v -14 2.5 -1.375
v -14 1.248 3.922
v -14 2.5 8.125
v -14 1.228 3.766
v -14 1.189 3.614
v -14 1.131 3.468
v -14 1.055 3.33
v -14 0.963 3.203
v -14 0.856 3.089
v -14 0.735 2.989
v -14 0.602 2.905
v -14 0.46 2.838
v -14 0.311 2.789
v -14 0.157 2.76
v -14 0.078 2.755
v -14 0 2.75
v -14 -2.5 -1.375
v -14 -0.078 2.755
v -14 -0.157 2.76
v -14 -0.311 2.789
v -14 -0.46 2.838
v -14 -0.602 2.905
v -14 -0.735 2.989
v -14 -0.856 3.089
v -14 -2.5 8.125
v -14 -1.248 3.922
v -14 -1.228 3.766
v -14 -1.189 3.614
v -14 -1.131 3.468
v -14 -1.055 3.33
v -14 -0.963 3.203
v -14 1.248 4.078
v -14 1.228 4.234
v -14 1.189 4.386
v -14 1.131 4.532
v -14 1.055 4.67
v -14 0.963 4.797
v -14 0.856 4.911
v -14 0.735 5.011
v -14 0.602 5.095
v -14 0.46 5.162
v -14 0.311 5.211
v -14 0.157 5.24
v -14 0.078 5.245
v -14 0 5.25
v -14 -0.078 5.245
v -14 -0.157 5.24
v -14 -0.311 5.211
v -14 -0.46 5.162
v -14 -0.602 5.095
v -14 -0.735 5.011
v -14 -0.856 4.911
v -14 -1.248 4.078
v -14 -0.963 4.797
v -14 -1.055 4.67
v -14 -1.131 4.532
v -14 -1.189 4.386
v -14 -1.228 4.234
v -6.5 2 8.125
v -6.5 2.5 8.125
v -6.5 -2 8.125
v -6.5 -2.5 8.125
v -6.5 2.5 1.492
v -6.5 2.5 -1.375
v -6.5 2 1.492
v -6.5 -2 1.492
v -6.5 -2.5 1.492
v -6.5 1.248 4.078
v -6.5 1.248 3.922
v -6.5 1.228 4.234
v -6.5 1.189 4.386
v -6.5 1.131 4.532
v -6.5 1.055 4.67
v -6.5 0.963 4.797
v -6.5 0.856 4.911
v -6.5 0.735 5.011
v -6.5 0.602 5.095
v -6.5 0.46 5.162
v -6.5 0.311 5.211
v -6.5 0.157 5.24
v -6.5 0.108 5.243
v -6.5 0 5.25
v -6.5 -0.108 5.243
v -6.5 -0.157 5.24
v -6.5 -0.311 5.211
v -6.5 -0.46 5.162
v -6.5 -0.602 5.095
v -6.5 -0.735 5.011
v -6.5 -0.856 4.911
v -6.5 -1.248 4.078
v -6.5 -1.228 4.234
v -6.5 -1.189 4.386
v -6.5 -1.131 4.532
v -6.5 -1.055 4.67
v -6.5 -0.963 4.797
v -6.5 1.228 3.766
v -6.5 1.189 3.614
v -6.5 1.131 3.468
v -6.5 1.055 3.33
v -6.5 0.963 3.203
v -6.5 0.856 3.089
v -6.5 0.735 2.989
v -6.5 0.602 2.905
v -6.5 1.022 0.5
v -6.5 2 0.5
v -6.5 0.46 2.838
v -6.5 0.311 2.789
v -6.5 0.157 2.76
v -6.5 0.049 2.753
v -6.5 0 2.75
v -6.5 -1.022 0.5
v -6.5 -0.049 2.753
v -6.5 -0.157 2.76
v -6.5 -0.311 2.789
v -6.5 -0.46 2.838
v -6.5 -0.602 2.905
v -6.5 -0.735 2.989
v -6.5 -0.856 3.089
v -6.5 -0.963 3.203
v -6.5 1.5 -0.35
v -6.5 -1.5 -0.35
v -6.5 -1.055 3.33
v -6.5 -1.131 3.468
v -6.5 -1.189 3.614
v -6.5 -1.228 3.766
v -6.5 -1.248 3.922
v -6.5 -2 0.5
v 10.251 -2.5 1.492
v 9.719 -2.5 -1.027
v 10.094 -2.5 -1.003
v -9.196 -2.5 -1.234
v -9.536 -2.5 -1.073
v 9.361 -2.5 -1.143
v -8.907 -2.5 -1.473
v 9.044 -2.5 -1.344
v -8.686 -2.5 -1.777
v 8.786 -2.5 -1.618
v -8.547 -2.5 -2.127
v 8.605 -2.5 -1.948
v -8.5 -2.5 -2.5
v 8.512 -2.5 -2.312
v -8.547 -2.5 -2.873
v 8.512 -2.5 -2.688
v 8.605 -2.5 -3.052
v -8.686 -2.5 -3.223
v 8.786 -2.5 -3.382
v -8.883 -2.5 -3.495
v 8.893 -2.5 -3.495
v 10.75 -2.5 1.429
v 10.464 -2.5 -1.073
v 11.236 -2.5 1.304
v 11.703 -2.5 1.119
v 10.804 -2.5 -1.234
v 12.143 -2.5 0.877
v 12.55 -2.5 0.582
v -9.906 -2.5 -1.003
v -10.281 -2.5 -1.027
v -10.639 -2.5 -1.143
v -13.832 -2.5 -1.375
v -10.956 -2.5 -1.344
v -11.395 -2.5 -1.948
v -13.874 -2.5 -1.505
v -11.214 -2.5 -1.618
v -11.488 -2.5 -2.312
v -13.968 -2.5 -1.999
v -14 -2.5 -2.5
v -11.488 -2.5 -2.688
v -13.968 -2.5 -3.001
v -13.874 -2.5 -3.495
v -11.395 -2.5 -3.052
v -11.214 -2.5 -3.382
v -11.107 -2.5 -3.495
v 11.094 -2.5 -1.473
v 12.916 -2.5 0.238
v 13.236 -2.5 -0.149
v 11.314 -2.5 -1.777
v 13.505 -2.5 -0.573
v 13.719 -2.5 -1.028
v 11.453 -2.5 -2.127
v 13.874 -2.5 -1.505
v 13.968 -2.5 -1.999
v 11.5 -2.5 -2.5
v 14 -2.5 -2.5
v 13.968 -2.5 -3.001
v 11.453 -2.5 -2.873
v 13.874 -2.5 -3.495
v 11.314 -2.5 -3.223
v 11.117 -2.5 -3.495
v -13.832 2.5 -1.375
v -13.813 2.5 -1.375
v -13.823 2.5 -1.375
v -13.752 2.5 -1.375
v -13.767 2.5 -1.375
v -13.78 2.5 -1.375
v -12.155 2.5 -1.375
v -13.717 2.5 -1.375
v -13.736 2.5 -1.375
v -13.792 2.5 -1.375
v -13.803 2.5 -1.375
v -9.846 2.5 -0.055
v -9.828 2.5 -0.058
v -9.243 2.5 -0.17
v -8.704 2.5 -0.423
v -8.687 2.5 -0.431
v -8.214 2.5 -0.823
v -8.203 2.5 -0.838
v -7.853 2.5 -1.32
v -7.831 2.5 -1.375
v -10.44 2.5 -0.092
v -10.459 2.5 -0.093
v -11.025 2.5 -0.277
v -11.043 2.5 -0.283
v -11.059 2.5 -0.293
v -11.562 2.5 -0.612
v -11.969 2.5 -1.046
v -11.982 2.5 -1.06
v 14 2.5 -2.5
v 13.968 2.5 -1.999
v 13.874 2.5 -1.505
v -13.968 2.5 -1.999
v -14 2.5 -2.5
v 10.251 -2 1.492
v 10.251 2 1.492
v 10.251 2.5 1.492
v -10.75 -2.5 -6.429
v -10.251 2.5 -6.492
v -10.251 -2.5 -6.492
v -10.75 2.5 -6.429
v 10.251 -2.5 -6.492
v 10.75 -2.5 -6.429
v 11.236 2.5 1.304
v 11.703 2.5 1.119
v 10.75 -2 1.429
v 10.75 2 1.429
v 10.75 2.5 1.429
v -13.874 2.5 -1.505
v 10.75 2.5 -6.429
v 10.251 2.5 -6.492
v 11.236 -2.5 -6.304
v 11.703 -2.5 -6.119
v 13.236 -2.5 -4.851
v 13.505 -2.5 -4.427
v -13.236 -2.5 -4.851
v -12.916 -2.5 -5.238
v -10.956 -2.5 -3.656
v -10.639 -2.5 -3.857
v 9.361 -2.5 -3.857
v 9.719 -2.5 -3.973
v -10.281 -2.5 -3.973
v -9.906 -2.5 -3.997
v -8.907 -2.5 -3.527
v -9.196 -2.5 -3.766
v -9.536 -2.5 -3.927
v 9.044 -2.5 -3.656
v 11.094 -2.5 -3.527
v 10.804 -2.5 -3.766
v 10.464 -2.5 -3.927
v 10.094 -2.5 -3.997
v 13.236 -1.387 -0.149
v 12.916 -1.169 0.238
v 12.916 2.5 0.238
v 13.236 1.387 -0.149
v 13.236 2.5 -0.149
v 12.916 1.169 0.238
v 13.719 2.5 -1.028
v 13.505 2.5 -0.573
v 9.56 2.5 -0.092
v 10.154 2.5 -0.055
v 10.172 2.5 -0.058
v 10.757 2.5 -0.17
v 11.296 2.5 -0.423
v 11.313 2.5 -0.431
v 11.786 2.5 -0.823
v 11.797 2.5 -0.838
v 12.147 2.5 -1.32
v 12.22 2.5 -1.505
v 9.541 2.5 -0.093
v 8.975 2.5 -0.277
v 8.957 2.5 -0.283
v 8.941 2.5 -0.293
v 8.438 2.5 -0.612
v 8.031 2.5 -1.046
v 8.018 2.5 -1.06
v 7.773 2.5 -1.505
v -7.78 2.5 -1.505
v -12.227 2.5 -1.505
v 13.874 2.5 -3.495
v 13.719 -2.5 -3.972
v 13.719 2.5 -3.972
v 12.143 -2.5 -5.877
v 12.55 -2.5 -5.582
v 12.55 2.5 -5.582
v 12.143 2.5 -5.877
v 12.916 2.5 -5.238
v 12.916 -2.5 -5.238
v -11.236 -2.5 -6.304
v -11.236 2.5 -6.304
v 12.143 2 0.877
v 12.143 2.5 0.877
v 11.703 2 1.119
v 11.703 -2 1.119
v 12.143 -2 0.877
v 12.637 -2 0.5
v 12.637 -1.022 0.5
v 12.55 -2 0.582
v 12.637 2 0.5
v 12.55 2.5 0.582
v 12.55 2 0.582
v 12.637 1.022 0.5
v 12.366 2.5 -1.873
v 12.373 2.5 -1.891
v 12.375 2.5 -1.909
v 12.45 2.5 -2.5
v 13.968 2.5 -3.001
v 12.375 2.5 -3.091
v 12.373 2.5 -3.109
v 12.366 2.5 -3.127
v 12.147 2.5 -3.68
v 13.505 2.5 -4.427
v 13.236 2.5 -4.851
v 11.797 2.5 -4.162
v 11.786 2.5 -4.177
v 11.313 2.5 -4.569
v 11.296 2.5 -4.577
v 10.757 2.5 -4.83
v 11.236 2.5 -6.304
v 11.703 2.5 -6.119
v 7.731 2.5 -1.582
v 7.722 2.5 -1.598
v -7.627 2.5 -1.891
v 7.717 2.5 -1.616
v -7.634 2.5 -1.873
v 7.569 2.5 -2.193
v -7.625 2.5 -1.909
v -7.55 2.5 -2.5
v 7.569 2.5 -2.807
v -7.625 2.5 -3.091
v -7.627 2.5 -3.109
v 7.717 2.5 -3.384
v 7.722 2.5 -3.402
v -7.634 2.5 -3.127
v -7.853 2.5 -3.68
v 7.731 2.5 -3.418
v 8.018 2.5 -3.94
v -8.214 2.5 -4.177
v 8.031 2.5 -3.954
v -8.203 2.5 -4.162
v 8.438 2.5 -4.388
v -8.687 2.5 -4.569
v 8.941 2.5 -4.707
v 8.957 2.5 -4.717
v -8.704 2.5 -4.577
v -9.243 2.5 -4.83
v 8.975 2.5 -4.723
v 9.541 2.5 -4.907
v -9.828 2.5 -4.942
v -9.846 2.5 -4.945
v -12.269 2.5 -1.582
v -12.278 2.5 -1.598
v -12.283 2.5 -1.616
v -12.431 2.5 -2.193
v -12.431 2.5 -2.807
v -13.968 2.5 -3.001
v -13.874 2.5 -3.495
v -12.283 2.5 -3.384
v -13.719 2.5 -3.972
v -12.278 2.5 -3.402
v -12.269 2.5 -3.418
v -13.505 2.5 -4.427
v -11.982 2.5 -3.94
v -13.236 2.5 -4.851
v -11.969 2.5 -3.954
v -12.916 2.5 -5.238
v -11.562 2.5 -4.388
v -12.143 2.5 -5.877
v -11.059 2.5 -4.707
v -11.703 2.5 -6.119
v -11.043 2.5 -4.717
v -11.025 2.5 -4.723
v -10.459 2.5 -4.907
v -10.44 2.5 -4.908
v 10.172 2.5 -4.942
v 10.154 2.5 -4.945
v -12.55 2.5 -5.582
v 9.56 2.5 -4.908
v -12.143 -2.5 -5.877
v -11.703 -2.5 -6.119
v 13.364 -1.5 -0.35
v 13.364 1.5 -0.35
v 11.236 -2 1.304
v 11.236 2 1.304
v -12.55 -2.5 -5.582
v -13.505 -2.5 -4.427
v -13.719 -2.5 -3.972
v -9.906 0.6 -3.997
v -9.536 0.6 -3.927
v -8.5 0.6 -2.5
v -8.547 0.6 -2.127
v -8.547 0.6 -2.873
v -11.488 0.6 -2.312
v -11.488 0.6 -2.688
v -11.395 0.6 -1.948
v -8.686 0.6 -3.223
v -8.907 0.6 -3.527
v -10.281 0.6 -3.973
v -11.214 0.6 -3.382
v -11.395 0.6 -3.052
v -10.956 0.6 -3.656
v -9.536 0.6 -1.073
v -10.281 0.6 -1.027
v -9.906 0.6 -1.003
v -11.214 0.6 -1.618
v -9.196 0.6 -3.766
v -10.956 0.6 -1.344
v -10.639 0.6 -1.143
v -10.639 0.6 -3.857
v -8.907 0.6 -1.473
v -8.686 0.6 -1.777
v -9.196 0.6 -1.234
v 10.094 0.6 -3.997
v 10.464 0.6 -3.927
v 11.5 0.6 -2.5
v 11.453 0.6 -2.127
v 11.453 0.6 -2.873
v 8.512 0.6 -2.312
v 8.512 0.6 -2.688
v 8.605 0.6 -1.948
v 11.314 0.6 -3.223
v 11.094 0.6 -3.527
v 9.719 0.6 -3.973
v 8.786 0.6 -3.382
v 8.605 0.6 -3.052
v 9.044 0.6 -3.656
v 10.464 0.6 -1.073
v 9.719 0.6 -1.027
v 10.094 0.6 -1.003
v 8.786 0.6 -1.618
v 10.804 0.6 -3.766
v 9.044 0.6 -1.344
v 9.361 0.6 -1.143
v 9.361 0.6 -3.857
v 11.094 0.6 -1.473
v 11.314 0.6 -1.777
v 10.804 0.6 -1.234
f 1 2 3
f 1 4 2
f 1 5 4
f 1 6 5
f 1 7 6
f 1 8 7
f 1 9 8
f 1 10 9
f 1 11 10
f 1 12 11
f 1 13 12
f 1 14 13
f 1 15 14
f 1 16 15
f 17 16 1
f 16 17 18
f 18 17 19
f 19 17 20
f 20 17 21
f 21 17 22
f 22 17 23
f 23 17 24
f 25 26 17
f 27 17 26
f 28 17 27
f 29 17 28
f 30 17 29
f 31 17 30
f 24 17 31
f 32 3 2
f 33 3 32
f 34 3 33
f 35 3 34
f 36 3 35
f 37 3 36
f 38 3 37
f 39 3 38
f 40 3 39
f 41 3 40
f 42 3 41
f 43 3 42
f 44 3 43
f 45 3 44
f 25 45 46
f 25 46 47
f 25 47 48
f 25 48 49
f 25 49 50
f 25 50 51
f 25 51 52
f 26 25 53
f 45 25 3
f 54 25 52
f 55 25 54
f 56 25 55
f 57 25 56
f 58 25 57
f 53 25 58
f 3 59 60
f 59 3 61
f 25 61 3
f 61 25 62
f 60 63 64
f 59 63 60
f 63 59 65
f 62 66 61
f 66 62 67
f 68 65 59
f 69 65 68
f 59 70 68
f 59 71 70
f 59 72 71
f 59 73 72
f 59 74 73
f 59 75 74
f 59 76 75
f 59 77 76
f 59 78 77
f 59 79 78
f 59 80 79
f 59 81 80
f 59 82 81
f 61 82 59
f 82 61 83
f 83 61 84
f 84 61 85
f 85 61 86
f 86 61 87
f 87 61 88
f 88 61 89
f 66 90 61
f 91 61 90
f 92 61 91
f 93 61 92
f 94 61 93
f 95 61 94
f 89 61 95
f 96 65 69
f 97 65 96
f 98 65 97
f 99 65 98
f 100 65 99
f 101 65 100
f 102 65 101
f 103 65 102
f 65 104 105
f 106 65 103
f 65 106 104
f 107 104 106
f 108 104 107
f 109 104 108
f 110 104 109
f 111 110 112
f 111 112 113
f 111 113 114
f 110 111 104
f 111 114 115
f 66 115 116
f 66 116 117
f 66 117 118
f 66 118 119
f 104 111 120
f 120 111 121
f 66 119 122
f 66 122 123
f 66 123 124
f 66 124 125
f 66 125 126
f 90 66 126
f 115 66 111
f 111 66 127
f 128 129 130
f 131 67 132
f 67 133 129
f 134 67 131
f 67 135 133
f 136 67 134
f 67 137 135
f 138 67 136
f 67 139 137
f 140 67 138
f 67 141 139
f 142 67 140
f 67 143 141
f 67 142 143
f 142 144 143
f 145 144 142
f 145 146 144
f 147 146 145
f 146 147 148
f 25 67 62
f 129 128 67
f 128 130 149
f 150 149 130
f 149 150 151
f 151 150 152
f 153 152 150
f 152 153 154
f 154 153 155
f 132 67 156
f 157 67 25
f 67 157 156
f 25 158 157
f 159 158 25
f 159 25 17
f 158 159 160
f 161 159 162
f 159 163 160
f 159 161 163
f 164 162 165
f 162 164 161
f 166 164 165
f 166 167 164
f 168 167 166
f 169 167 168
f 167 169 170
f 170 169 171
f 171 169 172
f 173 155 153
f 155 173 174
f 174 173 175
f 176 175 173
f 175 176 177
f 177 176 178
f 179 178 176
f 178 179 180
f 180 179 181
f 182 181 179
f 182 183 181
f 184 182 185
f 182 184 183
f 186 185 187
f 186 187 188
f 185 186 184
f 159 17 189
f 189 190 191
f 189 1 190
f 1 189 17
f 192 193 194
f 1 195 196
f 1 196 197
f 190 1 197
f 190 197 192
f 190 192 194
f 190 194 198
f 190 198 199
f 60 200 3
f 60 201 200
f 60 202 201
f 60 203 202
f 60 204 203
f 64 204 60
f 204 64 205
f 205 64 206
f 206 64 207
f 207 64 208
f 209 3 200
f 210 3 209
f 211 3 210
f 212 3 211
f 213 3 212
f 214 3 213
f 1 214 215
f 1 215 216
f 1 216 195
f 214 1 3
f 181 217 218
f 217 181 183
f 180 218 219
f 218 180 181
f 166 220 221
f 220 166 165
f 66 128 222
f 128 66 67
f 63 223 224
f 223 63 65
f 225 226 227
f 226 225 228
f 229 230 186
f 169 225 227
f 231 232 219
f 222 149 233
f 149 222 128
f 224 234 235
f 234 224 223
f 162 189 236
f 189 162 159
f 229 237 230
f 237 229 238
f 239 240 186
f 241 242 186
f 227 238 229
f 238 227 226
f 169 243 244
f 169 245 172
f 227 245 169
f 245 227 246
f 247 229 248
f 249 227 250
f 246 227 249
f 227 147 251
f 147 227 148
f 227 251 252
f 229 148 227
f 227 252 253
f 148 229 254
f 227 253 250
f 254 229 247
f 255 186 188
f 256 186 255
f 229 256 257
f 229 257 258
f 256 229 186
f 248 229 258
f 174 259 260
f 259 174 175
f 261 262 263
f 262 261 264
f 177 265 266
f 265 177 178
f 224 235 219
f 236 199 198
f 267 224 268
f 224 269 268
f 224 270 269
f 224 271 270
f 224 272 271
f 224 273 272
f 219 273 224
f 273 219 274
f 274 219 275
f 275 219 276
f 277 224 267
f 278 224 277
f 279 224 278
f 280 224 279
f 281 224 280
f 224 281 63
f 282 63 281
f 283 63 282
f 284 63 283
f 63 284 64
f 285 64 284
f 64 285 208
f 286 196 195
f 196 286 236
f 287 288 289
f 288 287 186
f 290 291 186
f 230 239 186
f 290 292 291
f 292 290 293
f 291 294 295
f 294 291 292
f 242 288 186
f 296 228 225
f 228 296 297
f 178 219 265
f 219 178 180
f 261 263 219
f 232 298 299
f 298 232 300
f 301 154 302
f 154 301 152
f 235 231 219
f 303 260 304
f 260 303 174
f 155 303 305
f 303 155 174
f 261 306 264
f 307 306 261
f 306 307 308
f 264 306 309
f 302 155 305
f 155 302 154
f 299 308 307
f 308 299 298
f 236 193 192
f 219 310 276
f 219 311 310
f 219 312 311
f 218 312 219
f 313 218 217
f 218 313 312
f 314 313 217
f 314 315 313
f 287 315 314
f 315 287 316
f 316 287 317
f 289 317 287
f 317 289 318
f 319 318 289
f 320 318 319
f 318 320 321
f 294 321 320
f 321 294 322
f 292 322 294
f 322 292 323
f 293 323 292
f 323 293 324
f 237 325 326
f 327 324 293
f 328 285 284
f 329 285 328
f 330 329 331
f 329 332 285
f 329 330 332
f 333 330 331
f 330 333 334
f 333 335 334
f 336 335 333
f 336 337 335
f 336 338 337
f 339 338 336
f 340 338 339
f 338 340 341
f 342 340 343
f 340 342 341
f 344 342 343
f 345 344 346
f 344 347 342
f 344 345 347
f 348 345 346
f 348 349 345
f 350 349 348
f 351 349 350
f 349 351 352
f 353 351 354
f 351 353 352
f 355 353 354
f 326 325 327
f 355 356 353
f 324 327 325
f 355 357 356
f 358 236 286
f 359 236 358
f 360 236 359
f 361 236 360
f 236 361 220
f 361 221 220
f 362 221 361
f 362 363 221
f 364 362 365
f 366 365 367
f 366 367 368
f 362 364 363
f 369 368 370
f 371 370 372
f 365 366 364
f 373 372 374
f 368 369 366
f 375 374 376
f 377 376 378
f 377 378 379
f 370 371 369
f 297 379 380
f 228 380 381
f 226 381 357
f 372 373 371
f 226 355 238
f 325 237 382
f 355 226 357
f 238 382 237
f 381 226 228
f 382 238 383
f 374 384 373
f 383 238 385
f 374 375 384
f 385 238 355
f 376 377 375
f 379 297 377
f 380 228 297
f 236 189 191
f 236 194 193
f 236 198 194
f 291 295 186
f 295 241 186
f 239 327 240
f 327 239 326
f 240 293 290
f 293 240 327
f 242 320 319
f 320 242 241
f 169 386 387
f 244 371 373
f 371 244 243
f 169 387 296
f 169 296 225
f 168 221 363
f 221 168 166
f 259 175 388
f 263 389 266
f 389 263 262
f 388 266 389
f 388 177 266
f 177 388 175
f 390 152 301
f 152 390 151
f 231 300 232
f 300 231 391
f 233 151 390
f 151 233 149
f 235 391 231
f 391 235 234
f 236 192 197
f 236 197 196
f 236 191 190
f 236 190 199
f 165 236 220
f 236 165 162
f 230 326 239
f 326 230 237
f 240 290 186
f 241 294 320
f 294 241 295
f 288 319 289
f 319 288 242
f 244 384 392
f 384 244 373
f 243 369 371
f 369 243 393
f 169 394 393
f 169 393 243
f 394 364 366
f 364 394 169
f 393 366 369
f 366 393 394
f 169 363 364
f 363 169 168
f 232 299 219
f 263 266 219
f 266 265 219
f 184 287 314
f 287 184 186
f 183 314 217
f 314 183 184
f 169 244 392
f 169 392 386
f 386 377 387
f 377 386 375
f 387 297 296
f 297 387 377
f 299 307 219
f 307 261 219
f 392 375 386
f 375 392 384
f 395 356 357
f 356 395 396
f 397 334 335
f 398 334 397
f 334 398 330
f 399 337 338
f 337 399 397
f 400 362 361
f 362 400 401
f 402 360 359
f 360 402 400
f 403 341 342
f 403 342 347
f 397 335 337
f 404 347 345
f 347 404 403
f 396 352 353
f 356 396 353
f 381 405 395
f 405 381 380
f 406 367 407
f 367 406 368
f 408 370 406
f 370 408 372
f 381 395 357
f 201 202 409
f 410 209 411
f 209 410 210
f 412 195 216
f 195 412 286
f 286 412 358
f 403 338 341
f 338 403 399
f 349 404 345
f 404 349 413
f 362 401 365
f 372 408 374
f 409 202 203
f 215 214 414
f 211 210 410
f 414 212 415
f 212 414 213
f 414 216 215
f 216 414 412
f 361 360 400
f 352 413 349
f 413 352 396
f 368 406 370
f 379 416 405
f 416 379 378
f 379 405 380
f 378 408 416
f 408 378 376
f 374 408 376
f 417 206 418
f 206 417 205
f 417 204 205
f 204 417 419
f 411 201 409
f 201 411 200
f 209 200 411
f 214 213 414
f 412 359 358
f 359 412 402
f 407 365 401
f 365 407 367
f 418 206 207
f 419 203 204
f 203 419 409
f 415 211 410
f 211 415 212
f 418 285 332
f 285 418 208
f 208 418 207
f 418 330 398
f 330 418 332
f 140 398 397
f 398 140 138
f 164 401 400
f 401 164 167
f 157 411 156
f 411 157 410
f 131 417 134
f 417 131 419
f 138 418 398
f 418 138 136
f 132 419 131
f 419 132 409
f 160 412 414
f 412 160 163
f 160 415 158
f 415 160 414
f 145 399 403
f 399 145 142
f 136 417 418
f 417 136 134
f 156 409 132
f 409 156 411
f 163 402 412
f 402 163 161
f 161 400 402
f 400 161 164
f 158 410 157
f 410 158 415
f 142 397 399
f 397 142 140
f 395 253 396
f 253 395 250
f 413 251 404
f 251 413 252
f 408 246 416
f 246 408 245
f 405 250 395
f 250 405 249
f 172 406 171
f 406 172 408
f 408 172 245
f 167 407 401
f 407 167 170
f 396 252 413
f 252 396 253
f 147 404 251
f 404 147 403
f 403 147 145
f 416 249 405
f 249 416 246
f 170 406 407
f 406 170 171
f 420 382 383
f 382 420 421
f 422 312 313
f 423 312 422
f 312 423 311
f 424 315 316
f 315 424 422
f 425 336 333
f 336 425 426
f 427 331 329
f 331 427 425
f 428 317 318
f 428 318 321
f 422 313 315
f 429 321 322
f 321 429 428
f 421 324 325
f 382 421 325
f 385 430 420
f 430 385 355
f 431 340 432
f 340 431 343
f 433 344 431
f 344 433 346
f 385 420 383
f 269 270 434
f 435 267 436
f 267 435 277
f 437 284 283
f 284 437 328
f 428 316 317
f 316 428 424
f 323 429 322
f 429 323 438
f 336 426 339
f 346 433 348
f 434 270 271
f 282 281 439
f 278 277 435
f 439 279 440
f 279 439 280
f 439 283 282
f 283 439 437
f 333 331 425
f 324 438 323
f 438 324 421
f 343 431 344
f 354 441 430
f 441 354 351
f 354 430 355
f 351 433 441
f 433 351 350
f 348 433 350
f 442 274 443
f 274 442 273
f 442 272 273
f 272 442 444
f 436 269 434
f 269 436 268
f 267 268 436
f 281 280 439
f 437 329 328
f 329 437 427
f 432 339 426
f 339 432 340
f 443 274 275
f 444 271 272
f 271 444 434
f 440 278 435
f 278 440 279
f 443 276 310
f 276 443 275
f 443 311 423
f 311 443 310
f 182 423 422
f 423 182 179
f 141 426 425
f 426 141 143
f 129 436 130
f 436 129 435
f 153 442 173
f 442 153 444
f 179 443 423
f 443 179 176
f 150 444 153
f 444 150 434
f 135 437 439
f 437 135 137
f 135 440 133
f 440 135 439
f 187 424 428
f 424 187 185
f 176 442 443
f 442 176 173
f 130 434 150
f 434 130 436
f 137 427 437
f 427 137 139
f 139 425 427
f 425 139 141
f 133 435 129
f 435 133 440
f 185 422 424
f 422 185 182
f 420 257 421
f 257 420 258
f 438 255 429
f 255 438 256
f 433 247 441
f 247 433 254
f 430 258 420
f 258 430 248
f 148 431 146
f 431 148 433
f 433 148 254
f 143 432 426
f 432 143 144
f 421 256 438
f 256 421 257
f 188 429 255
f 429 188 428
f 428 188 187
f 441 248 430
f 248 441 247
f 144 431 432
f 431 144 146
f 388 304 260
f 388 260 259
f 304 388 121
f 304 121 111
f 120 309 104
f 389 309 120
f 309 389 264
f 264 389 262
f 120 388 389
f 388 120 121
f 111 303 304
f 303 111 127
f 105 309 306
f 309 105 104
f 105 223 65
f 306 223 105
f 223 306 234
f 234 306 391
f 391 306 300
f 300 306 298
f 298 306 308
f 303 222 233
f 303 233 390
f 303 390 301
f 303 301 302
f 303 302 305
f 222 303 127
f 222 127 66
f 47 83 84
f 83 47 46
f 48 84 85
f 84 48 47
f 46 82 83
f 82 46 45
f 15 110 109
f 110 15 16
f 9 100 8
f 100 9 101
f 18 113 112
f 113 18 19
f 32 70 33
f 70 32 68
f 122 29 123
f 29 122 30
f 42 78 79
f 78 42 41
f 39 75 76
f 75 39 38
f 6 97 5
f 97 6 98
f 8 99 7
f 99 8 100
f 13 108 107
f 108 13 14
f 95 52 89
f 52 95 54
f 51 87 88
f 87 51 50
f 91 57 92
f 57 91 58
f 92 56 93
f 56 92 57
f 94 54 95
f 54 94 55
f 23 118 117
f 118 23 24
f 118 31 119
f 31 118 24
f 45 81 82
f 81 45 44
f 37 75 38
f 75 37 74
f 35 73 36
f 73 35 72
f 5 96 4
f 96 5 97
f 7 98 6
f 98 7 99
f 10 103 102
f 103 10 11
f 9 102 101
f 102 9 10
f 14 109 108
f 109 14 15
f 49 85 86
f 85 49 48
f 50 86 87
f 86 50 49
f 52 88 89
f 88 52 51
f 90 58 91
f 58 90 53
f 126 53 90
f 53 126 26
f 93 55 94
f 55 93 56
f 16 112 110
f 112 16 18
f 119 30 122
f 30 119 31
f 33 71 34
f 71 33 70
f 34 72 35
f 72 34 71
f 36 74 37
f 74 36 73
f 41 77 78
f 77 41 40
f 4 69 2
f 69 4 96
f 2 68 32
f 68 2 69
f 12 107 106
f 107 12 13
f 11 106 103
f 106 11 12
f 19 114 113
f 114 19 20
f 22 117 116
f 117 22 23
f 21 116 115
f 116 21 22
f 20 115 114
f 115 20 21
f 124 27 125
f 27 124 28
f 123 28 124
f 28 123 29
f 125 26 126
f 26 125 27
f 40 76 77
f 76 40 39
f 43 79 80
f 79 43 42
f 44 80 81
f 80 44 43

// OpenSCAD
// file: openscad-extra/src/nut.scad
module make_hex_nut(w, h, d=0){
    // d = inner diameter
    // w = width across the flats
    // h = height or thickness
    s = w/sqrt(3);
    difference(){
        union(){
            for(i=[0:1:2]){
                rotate([0,0,120*i])
                cube([w, s, h], center=true);
            }
        }
        if(d){
            cylinder(d=d, h=h+1, center=true);
        }
    }
}

//make_hex_nut(w=5, h=2, d=2.5);

module make_nut_2(d=2){
    make_hex_nut(w=4.8, h=2, d=d);
}

module make_nut_w4_h1p5(d=2){
    make_hex_nut(w=4, h=1.5, d=d);
}

module make_nut_2_5(d=2, h=3.5){
    make_hex_nut(w=5+0.5/2, h=h, d=d);
}

module make_nut_2_5_test(){
    difference(){
        translate([0,0,-.5])
        cube([10,10,2], center=true);
        make_nut_2_5(d=0);
    }
}

module make_nut_2_5_test_downward(){
    difference(){
        translate([0,0,1])
        cube([10,10,2*2.5], center=true);
        color("red")
        make_nut_2_5(d=0);
        color("blue")
        cylinder(d=2.5, h=10, center=true);
    }
}

module make_nut_2_5_test_punchout(){
    difference(){
        translate([0,0,1.5])
        cube([10,10,2*1.5], center=true);
        color("red")
        make_nut_2_5(d=0);
        color("blue")
        cylinder(d=2.5, h=10, center=true);
    }
    color("green")
    translate([0,0,1.8])
    cube([10,10,0.25], center=true);
}

//make_nut_2_5_test();
make_nut_w4_h1p5();
//make_nut_2_5_test_downward();
//make_nut_2_5_test_punchout();
// file: openscad-extra/src/countersink.scad
/*
Countersink depression for tapered screw heads.
*/

module make_countersink(d1=0, d2=0, h=0, outer=10, inner=0, $fn=25){
    /*
    d1 = shaft diameter
    d2 = head diameter
    h = height of taper
    outer = height of head mass
    inner = height of shaft mass, including taper
    */
    default_taper_height = 2;
    d1 = d1 ? d1 : 2.5;
    d2 = d2 ? d2 : 5;
    h = h ? h : default_taper_height;
    inner = (inner ? inner : 10) - default_taper_height;
    
    translate([0, 0, -default_taper_height/2])
    union(){
        
        // taper
        cylinder(d1=d1, d2=d2, h=h, center=true, $fn=$fn);
    
        // big top
    	translate([0, 0, h/2])
    	cylinder(d=d2, h=outer, center=false, $fn=$fn);
        
    	// lower bottom
    	translate([0, 0, -h/2-inner])
    	cylinder(d=d1, h=inner, center=false, $fn=$fn);
	}
}

make_countersink(inner=10);

color("blue")
translate([0,2,0])
cylinder(d=2.5, h=20, center=true, $fn=100);
// file: leg_knee_tendon_anchor.scad
use <openscad-extra/src/countersink.scad>;
use <openscad-extra/src/nut.scad>;

module leg_knee_tendon_anchor_slot(width=3, width_buffer=0, height=1){
    linear_extrude(height=30)
    polygon([
        [(width+width_buffer)/2,0],
        [(width+width_buffer)/2/4,height],
        [-(width+width_buffer)/2/4,height],
        [-(width+width_buffer)/2,0]]);
}

module leg_knee_tendon_anchor_top_base(buffer=0){
    
    // track cutout
    translate([-1.5,0,-1+.15])
    rotate([0,90,0])
    rotate([0,0,90])
    leg_knee_tendon_anchor_slot(width_buffer=buffer*2, height=2);
    
    // slot cutout
    translate([20/2-1.5,0,2.5+5/2])
    cube([20, 4+buffer*2, 10], center=true);
    
}

module leg_knee_tendon_anchor_top(){
    
    wire_x = 12+5;
    wire_z = 6-0.1;
    wire_d = 6.46;
    
    difference(){
        union(){
            intersection(){
                
                // track mass
                if(1)
                translate([0,0,1.5])
                leg_knee_tendon_anchor_top_base(buffer=-0.25);
                
                // bounding box
                if(1)
                color("blue")
                translate([5+2,0,4.125])
                cube([15,10,10], center=true);
            }

            // top mass
            color("blue")
            translate([5+2,0,5.5+.25+.05+0.15/2])
            cube([15,5,6.5], center=true);
                
            // tendon mount mass
            hull(){
                translate([wire_x,0,wire_z])
                rotate([90,0,0])
                cylinder(d=wire_d, h=5, center=true, $fn=50);
                
                translate([6,0,wire_z])
                rotate([90,0,0])
                cylinder(d=wire_d, h=5, center=true, $fn=50);
            }
            
        }
        
        // small hux nut cutout
        if(0)
        color("red")
        hull()
        for(i=[0:1])
        translate([2,i*5,5])
        rotate([0,90,0])
        rotate([0,0,30])
        make_hex_nut(w=5, h=2, d=0);

        // hex nut cutout
        hull(){
            for(i=[0:3])
            translate([4,i,5])
            rotate([0,90,0])
            rotate([0,0,60/2])
            make_hex_nut(w=5.1, h=4, d=0);
        }

        // axle hole
        translate([0,0,5])
        rotate([0,90,0])
        cylinder(d=2.5, h=100, center=true, $fn=50);
            
        // wire slot cutout
        color("red")
        translate([wire_x,0,wire_z])
        rotate([90,0,0])
        cylinder(d=8, h=2, center=true, $fn=50);
    
        // wire screw hole
        color("red")
        translate([wire_x,0,wire_z])
        rotate([90,0,0])
        cylinder(d=2, h=20, center=true, $fn=50);

    }
    
}

module leg_knee_tendon_anchor_bottom(){
    
    axle_offset_z = -.5+3;
    axle_mass_h = 7.5+2;
    
    difference(){
        union(){
            // main mass
            if(0)
            translate([0,0,-2.5/2])
            cube([25, 5, 5+2.5], center=true);
            
            // axle mount mass
            color("blue")
            translate([-10/2-5/2-2.5/2+1-5/2, 0, axle_mass_h/2/2+axle_offset_z-1.5])
            cube([12.5-5, 5, axle_mass_h], center=true);
            
            if(1)
            hull()
            translate([0,0,-2.5])
            for(i=[-1:2:1])
            translate([2.5*4*i,0,0])
            rotate([90,0,0])
            cylinder(d=8, h=5, center=true, $fn=50);
        }
        
        // mount holes
        translate([0,0,-2.5])
        for(i=[-1:2:1])
        color("red")
        translate([2.5*4*i,-2.6,0])
        rotate([90,0,0])
        make_countersink(d1=3);
        
        // flattening cutout
        if(0)
        translate([7,0,5+5/2])
        cube([25, 6, 10], center=true);
        
        // hex nut cutout
        if(0)
        translate([2,0,-4+axle_offset_z])
        hull(){
            for(i=[0:3])
            translate([-7.5,i,5+.5])
            rotate([0,90,0])
            rotate([0,0,60/2])
            make_hex_nut(w=5.1, h=4, d=0);
        }
    
        // main axle cutout
        translate([-14,0,1.5+axle_offset_z])
        rotate([0,-90,0])
        //make_countersink(d1=3, inner=40);
        cylinder(d=2.5, h=40, center=true, $fn=50);
        
        translate([-5,0,.5]){
            //color("red")
            leg_knee_tendon_anchor_top_base();
        }
            
    }
    
}

if(1)
//color("green")
translate([0,0,-1])
leg_knee_tendon_anchor_top();

leg_knee_tendon_anchor_bottom();

color("green")
translate([0,0,1+3])
rotate([0,90,0])
cylinder(d=1, h=100, center=true, $fn=50);

if(0)
color("red")
for(i=[0:10])
translate([5*i-20,0,0])
rotate([90,0,0])
cylinder(d=1, h=100, center=true, $fn=50);
// main file
use <leg_knee_tendon_anchor.scad>;

mirror([0,1,0])
leg_knee_tendon_anchor_bottom();
